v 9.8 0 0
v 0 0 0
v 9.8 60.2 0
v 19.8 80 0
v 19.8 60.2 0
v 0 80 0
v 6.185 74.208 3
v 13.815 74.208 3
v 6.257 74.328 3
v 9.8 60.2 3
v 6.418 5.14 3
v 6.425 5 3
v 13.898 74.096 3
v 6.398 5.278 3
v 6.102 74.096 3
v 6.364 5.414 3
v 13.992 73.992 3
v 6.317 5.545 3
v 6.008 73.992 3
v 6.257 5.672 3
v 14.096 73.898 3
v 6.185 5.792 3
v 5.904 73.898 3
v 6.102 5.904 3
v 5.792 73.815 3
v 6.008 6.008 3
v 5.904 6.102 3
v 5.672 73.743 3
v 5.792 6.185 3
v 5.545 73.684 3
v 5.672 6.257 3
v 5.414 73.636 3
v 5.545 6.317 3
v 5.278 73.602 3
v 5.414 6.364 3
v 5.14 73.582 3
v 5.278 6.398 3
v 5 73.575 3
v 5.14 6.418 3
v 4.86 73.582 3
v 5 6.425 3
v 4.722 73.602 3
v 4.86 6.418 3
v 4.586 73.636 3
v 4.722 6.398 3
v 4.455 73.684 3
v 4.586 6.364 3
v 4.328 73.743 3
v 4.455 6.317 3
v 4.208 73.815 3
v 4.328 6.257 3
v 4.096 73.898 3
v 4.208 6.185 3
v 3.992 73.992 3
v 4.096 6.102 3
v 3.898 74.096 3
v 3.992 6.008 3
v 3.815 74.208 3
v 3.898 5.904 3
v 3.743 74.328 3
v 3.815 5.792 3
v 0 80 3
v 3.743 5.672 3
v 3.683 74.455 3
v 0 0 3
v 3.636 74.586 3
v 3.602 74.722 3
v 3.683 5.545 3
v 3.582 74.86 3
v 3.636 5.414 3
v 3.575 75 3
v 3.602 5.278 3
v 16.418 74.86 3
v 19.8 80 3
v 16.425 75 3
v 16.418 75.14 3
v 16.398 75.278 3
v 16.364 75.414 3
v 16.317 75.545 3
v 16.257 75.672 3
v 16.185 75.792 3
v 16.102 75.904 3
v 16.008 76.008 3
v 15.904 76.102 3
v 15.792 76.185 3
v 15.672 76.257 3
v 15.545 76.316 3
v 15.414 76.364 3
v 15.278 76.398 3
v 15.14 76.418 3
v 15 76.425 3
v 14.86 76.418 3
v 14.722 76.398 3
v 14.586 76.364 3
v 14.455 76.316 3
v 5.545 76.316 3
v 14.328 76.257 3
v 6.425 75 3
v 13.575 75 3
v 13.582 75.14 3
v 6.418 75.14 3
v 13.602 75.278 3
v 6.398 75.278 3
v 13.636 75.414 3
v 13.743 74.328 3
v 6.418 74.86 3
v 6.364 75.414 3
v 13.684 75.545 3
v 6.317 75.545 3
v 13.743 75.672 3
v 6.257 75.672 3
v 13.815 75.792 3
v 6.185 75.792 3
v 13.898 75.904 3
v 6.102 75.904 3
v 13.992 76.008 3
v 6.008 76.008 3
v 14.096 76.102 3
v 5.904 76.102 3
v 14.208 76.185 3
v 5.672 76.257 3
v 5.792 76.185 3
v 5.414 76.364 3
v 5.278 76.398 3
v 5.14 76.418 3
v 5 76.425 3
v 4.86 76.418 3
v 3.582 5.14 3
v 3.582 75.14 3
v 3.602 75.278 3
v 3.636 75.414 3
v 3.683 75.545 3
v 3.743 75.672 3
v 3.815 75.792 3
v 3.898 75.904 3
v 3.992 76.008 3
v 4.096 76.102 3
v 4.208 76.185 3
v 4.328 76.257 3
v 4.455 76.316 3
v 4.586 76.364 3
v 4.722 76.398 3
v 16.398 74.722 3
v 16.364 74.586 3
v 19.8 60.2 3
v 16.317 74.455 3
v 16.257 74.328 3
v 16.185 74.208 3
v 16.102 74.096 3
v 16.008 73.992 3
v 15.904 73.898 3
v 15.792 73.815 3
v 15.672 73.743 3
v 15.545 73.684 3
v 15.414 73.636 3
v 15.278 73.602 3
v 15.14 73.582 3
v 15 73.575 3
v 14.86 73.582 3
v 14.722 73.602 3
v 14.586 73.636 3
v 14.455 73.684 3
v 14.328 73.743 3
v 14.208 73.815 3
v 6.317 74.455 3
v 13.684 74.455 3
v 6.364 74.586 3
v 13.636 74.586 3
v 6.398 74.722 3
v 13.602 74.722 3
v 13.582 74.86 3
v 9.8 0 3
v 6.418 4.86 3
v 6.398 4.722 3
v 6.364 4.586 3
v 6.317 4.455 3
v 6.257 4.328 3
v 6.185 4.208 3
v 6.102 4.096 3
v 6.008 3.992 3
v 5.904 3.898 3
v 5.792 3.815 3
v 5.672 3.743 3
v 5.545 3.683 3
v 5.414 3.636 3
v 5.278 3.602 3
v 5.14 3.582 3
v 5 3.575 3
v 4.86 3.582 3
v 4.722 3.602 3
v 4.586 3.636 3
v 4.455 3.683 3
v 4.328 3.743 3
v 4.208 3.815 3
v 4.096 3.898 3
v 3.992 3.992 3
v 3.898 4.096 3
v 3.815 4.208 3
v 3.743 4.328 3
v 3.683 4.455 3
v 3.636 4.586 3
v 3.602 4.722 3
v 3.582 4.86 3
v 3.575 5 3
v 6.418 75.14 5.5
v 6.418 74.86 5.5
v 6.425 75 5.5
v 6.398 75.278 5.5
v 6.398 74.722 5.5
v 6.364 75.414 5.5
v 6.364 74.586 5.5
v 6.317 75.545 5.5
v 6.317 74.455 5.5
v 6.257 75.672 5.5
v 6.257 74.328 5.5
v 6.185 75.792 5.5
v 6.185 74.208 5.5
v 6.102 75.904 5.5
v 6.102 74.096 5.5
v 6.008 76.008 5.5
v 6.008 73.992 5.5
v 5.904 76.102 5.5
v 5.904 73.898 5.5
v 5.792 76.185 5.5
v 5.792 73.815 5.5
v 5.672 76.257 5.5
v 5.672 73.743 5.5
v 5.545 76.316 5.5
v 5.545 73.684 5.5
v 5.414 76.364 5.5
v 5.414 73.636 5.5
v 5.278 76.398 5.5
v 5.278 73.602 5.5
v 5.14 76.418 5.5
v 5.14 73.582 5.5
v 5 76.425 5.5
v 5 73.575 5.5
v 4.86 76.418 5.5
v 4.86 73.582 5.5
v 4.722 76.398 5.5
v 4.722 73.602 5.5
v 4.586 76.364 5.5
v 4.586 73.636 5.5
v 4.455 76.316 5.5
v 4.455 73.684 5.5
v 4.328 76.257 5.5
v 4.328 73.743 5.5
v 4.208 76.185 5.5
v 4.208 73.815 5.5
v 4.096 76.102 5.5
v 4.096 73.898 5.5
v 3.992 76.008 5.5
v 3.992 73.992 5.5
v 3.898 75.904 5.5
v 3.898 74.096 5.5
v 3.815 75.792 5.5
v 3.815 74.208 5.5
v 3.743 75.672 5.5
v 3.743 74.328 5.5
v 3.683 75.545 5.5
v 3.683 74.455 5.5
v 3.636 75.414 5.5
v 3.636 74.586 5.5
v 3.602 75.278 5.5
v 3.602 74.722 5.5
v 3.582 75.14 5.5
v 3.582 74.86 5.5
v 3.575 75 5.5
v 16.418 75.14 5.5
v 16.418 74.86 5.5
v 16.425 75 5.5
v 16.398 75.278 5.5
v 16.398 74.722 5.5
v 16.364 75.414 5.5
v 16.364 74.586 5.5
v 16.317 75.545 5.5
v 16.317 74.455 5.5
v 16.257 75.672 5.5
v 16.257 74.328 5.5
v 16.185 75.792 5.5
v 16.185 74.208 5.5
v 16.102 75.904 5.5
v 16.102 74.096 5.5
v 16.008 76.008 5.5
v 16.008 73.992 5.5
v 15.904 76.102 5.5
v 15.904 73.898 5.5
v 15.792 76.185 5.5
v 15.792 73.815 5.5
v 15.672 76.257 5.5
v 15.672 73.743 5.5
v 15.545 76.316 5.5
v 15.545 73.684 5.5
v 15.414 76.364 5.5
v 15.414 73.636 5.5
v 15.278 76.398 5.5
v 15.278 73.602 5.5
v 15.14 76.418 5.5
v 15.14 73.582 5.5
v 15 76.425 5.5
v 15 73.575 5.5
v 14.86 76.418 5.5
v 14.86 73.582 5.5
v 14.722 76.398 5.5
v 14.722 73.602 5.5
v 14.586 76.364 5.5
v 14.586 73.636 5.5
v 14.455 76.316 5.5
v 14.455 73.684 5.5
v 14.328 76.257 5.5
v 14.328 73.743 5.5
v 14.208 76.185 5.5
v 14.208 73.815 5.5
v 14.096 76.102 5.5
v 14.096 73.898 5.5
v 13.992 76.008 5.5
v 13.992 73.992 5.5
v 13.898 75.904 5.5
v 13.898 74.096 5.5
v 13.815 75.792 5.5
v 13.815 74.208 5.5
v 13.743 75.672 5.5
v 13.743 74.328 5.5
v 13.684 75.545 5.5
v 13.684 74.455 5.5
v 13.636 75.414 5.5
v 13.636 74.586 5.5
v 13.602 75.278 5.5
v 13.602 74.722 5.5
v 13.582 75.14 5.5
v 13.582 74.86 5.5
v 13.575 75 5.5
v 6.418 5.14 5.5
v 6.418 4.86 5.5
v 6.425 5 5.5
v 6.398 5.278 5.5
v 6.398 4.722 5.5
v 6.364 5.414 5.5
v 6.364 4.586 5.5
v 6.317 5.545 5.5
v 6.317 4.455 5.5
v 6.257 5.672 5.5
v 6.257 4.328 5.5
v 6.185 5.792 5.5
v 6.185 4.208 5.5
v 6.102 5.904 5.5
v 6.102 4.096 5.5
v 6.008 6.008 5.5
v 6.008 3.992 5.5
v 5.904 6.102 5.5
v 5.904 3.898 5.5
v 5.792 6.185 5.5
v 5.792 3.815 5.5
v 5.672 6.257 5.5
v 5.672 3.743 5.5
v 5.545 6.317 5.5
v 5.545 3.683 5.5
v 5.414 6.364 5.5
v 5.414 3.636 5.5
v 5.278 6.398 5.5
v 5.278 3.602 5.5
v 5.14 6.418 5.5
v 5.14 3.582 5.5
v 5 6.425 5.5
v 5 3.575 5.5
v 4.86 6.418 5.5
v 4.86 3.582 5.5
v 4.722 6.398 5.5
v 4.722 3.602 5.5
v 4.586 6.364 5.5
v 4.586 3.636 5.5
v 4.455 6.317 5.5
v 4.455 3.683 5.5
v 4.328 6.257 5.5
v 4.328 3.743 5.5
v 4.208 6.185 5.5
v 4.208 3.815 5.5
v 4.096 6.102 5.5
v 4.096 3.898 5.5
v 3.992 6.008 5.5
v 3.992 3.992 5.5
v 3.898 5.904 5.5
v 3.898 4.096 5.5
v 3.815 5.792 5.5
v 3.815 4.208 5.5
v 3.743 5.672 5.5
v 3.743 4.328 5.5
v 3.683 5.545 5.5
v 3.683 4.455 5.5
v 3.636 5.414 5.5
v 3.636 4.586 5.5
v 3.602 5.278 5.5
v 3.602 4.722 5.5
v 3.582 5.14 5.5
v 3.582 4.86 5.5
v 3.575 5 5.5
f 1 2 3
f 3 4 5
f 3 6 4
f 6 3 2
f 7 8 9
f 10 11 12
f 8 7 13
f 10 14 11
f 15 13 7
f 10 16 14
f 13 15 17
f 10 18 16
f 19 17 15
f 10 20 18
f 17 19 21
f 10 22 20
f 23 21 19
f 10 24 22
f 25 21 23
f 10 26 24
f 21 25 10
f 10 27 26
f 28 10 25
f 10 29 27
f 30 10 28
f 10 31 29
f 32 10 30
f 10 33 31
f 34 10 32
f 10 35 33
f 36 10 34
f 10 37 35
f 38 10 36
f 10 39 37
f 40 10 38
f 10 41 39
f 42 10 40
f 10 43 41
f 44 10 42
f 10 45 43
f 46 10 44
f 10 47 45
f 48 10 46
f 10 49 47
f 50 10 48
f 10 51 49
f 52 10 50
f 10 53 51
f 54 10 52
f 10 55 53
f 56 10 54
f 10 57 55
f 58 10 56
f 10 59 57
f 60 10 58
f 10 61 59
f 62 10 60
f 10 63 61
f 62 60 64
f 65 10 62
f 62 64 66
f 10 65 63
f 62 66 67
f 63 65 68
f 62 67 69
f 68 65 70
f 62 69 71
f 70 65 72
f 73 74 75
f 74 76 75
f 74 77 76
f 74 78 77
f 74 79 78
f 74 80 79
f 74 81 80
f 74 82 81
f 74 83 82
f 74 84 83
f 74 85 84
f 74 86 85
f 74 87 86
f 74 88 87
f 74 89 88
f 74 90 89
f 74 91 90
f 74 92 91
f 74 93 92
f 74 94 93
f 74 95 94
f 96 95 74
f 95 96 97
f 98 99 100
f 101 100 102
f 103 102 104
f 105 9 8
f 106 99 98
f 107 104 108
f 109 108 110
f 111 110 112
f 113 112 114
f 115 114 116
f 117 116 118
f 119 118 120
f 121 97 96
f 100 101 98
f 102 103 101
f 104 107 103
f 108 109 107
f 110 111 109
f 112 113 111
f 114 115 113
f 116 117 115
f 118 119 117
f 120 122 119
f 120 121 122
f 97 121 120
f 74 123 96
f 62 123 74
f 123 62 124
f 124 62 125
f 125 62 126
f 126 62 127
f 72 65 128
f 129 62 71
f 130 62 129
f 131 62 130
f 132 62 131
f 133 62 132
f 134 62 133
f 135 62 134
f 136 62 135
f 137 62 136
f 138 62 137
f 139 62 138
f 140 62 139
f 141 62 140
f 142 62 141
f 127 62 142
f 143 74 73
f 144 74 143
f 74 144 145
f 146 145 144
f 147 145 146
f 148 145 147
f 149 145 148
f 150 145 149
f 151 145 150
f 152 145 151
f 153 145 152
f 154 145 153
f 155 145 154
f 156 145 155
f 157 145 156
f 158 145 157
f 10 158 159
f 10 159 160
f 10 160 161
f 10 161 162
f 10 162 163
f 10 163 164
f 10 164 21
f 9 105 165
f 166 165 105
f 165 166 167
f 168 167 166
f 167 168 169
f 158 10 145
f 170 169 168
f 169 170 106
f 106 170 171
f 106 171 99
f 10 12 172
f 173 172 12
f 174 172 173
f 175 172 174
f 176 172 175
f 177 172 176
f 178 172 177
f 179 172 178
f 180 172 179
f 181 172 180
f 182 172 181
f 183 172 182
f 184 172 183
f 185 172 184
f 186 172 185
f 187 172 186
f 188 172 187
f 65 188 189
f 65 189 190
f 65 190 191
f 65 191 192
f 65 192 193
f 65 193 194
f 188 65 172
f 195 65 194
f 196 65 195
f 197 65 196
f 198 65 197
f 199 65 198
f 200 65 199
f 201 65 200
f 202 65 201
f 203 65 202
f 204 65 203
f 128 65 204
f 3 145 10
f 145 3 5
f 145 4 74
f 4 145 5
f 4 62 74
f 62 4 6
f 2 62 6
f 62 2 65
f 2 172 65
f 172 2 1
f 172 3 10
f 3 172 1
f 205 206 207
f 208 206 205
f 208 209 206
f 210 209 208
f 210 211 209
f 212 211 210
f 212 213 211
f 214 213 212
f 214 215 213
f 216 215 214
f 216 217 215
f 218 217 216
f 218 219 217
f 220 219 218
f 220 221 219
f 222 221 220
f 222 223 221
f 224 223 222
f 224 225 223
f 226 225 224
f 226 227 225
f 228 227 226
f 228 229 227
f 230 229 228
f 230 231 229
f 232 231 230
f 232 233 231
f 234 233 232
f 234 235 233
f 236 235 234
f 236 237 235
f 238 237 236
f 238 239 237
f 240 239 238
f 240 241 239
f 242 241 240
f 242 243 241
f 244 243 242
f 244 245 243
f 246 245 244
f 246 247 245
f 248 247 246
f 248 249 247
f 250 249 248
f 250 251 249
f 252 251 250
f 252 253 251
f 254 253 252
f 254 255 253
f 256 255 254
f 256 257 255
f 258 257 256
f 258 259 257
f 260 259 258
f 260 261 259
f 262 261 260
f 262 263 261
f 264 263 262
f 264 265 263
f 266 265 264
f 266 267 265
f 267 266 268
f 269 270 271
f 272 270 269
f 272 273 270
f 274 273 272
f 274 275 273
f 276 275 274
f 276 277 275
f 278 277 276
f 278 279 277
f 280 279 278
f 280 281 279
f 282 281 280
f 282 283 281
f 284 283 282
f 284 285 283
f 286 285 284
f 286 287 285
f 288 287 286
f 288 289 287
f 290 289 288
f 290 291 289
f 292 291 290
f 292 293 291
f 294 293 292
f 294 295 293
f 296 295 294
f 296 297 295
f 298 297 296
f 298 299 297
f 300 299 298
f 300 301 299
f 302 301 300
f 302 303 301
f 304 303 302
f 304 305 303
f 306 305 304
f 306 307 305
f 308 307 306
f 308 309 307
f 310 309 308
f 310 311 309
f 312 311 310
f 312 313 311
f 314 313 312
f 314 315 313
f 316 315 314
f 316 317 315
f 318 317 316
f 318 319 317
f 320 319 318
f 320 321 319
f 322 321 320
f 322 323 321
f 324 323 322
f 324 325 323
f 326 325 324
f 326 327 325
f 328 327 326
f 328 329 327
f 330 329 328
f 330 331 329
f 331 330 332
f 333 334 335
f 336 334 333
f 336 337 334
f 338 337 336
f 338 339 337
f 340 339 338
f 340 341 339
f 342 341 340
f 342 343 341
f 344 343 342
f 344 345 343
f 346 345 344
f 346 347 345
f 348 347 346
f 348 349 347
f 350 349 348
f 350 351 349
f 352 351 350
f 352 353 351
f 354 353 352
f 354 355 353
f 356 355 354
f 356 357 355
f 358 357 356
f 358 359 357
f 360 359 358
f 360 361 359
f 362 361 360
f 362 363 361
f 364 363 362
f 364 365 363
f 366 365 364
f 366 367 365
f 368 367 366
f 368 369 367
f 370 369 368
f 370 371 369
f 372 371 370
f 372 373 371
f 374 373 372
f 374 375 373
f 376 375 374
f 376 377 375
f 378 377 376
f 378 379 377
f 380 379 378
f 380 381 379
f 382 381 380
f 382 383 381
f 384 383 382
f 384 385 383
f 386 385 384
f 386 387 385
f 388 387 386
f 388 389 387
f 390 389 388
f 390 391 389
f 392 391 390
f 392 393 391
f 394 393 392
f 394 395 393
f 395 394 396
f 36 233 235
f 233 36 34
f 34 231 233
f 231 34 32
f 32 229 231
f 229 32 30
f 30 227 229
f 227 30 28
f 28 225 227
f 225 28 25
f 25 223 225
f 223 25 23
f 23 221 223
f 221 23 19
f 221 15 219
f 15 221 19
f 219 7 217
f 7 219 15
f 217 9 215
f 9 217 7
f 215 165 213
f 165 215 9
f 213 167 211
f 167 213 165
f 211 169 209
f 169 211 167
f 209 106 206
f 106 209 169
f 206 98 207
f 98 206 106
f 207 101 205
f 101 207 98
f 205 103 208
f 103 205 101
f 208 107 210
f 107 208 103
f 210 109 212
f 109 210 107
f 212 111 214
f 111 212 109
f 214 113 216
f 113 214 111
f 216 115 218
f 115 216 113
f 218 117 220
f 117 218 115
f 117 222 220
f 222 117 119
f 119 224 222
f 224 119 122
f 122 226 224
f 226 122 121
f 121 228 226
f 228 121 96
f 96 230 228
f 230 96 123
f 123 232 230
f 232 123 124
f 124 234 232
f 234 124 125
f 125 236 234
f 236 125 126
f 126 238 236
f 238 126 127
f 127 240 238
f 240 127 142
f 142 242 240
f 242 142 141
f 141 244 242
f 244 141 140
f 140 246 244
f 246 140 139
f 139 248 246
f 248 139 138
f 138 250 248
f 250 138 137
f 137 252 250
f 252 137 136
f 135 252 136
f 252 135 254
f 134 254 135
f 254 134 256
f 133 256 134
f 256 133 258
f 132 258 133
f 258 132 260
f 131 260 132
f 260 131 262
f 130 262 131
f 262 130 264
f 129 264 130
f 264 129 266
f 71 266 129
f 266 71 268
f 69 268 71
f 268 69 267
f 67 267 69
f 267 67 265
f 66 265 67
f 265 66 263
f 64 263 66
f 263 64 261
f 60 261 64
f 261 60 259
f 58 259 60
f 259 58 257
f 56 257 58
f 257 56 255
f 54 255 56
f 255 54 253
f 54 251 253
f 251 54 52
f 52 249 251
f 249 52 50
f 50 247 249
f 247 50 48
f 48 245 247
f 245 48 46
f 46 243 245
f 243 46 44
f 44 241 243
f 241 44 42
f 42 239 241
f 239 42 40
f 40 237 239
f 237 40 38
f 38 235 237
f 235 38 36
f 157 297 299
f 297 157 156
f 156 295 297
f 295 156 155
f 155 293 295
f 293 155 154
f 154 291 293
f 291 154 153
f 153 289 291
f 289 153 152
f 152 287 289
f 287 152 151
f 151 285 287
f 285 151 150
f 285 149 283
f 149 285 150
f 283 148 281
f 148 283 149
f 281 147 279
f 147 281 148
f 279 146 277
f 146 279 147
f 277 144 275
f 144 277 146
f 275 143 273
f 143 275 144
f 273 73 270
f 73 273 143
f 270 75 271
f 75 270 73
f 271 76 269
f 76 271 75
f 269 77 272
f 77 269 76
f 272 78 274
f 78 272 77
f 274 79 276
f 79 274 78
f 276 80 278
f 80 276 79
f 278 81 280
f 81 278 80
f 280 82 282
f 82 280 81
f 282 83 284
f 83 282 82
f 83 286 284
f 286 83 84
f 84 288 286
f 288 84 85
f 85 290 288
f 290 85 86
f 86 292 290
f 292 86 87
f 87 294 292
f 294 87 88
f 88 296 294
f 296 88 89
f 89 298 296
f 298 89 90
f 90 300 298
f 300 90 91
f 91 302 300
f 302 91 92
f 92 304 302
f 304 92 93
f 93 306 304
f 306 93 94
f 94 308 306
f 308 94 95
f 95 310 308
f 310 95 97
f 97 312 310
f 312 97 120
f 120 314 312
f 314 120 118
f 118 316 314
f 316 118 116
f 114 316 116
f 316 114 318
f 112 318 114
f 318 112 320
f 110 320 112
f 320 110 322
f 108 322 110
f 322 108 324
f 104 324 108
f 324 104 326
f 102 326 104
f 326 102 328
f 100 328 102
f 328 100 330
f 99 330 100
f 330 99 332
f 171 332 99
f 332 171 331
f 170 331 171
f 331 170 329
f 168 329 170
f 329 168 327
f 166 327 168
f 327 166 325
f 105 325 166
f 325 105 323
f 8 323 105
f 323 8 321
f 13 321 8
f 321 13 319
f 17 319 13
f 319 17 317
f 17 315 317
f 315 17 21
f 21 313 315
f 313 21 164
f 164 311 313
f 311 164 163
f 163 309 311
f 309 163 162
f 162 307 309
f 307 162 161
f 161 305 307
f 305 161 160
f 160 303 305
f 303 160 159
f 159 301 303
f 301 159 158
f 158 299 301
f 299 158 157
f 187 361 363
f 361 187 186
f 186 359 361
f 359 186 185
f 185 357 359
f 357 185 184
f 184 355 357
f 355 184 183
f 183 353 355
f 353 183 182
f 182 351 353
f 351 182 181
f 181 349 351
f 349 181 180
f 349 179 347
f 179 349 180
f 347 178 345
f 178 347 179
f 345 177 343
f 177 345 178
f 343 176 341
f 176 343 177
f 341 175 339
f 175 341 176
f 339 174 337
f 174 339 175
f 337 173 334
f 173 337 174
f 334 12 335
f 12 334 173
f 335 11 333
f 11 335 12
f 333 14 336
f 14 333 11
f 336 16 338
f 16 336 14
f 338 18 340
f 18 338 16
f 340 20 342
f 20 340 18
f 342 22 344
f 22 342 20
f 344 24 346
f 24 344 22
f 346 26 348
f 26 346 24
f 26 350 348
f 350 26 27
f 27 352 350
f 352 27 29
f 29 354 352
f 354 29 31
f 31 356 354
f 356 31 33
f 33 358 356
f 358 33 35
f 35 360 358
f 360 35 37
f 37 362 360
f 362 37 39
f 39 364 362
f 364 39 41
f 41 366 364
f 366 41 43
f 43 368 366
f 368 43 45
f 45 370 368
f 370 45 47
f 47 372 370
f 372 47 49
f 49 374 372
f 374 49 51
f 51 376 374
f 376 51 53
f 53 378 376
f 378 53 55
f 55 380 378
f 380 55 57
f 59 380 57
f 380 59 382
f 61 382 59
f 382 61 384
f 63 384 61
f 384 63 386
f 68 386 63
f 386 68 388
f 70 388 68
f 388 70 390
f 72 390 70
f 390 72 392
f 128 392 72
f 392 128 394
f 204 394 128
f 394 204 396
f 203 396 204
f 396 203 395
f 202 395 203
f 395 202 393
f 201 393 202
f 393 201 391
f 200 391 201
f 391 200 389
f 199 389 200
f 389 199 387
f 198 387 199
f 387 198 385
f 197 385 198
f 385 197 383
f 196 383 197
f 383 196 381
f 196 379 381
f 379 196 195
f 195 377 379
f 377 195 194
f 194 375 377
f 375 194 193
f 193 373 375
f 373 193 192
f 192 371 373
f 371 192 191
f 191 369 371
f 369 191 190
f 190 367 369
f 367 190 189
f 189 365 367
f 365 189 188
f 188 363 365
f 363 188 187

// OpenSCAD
// file: TM4-inserts/common/params.scad
$fn = $preview ? 32 : 64;

// Value of kerf to apply when lasercutting things.
// Value is based on the experience using Epilog Mini machine in
// Google WFC Makerspace.
kerf = 0.2;

// Spacing between insert and miniatures bases to allow to slick fit.
insert_spacing = 0.2;
magnet_spacing = 0.15;

// Default values
//
// Default diameter of magnets used for my miniatures.
default_magnet_diameter = 3;
base_height = 3;
pin_height = 2.5;
// file: TM4-inserts/common/kow.scad
include <params.scad>;

module MagnetSockets(unit_type, only_diagonal = false) {
  baseSize = BaseSize(unit_type);

  translate([ 5, baseSize[1] - 5 ]) children(0);
  translate([ baseSize[0] - 5, 5 ]) children(0);

  if (!only_diagonal) {
    translate([ 5, 5 ]) children(0);
    translate([ baseSize[0] - 5, baseSize[1] - 5 ]) children(0);
  }
}

module Magnet(d = default_magnet_diameter, offset = 0) {
  circle(d = d + offset);
}

module BM4Sockets(unit_type, spacing, only_diagonal = false) {
  MagnetSockets(unit_type = unit_type, only_diagonal = only_diagonal) {
    Magnet(offset = spacing);
  }
}

module Base(unit_type, extraMargin = [ 0, 0 ]) {
  square(BaseSize(unit_type) + extraMargin);
}

function BaseSize(unit_type) = unit_type == "infantry"         ? [ 20, 20 ]
                               : unit_type == "heavy_infantry" ? [ 25, 25 ]
                               : unit_type == "cavalry"        ? [ 25, 50 ]
                               : unit_type == "lrginf"         ? [ 40, 40 ]
                               : unit_type == "lrgcav"         ? [ 50, 50 ]
                               : unit_type == "titan"          ? [ 75, 75 ]
                                                               : [ 10, 10 ];

function BaseNum(unit_type, unitSize) =
    unit_type == "infantry"  ? unitSize == "legion"     ? [ 10, 6 ]
                               : unitSize == "horde"    ? [ 10, 4 ]
                               : unitSize == "regiment" ? [ 5, 4 ]
                                                        : [ 5, 2 ]
    : unit_type == "cavalry" ? unitSize == "regiment" ? [ 5, 2 ] : [ 5, 1 ]
    : unit_type == "lrginf"  ? unitSize == "regiment" ? [ 3, 1 ] : [ 3, 2 ]
    : unit_type == "lrgcav"  ? unitSize == "regiment" ? [ 3, 1 ]
                               : unitSize == "horde"  ? [ 3, 2 ]
                                                      : [ 1, 1 ]
                             : [ 1, 1 ];
// file: TM4-inserts/libinsert.scad
include <common/kow.scad>;

module Pin() {
  Magnet(offset = -magnet_spacing);
}

module LInsert(size, unit_size, unit_type = "infantry") {
  base_num = BaseNum(unit_type, unit_size);
  base_size = BaseSize(unit_type);

  union() {
    width = size * base_size[0];
    length = base_num[1] * base_size[1];

    linear_extrude(height = base_height) {
      square(size =
                 [ width - 10 - insert_spacing, base_num[1] * base_size[1] ]);
      translate(v = [ 0, length - base_size[1] + insert_spacing]) {
        square(size = [ width - insert_spacing, base_size[1] - insert_spacing ]);
      }
    }
    translate(v = [ 0, 0, base_height ]) linear_extrude(height = pin_height) {
      translate(v = [ 5, 5 ]) Pin();
      translate(v = [ 5, length - 5 ]) Pin();
      translate(v = [ width - 5, length - 5 ]) Pin();

      if (size > 1) {
        translate(v = [ width - 5 - 10, 5 ]) Pin();
      }
    }
  }
}

module SideInsert(size, unit_size, unit_type = "infantry") {
  base_num = BaseNum(unit_type, unit_size);
  base_size = BaseSize(unit_type);

  union() {
    width = size * base_size[0];
    length = base_num[1] * base_size[1];

    linear_extrude(height = base_height) {
      difference() {
        square(size = [ width - insert_spacing, length ]);
        translate([width, length/2]) circle(0.5);
      }
    }
    translate(v = [ 0, 0, 3 ]) linear_extrude(height = pin_height) {
      translate(v = [ 5, 5 ]) Pin();
      translate(v = [ 5, length - 5 ]) Pin();
      if (size >= 1) {
        translate(v = [ width - 5, 5 ]) Pin();
        translate(v = [ width - 5, length - 5 ]) Pin();
      }
    }
  }
}
// main file
use <TM4-inserts/libinsert.scad>;

$fn = $preview ? 32 : 64;

LInsert(1, "regiment", "infantry");
